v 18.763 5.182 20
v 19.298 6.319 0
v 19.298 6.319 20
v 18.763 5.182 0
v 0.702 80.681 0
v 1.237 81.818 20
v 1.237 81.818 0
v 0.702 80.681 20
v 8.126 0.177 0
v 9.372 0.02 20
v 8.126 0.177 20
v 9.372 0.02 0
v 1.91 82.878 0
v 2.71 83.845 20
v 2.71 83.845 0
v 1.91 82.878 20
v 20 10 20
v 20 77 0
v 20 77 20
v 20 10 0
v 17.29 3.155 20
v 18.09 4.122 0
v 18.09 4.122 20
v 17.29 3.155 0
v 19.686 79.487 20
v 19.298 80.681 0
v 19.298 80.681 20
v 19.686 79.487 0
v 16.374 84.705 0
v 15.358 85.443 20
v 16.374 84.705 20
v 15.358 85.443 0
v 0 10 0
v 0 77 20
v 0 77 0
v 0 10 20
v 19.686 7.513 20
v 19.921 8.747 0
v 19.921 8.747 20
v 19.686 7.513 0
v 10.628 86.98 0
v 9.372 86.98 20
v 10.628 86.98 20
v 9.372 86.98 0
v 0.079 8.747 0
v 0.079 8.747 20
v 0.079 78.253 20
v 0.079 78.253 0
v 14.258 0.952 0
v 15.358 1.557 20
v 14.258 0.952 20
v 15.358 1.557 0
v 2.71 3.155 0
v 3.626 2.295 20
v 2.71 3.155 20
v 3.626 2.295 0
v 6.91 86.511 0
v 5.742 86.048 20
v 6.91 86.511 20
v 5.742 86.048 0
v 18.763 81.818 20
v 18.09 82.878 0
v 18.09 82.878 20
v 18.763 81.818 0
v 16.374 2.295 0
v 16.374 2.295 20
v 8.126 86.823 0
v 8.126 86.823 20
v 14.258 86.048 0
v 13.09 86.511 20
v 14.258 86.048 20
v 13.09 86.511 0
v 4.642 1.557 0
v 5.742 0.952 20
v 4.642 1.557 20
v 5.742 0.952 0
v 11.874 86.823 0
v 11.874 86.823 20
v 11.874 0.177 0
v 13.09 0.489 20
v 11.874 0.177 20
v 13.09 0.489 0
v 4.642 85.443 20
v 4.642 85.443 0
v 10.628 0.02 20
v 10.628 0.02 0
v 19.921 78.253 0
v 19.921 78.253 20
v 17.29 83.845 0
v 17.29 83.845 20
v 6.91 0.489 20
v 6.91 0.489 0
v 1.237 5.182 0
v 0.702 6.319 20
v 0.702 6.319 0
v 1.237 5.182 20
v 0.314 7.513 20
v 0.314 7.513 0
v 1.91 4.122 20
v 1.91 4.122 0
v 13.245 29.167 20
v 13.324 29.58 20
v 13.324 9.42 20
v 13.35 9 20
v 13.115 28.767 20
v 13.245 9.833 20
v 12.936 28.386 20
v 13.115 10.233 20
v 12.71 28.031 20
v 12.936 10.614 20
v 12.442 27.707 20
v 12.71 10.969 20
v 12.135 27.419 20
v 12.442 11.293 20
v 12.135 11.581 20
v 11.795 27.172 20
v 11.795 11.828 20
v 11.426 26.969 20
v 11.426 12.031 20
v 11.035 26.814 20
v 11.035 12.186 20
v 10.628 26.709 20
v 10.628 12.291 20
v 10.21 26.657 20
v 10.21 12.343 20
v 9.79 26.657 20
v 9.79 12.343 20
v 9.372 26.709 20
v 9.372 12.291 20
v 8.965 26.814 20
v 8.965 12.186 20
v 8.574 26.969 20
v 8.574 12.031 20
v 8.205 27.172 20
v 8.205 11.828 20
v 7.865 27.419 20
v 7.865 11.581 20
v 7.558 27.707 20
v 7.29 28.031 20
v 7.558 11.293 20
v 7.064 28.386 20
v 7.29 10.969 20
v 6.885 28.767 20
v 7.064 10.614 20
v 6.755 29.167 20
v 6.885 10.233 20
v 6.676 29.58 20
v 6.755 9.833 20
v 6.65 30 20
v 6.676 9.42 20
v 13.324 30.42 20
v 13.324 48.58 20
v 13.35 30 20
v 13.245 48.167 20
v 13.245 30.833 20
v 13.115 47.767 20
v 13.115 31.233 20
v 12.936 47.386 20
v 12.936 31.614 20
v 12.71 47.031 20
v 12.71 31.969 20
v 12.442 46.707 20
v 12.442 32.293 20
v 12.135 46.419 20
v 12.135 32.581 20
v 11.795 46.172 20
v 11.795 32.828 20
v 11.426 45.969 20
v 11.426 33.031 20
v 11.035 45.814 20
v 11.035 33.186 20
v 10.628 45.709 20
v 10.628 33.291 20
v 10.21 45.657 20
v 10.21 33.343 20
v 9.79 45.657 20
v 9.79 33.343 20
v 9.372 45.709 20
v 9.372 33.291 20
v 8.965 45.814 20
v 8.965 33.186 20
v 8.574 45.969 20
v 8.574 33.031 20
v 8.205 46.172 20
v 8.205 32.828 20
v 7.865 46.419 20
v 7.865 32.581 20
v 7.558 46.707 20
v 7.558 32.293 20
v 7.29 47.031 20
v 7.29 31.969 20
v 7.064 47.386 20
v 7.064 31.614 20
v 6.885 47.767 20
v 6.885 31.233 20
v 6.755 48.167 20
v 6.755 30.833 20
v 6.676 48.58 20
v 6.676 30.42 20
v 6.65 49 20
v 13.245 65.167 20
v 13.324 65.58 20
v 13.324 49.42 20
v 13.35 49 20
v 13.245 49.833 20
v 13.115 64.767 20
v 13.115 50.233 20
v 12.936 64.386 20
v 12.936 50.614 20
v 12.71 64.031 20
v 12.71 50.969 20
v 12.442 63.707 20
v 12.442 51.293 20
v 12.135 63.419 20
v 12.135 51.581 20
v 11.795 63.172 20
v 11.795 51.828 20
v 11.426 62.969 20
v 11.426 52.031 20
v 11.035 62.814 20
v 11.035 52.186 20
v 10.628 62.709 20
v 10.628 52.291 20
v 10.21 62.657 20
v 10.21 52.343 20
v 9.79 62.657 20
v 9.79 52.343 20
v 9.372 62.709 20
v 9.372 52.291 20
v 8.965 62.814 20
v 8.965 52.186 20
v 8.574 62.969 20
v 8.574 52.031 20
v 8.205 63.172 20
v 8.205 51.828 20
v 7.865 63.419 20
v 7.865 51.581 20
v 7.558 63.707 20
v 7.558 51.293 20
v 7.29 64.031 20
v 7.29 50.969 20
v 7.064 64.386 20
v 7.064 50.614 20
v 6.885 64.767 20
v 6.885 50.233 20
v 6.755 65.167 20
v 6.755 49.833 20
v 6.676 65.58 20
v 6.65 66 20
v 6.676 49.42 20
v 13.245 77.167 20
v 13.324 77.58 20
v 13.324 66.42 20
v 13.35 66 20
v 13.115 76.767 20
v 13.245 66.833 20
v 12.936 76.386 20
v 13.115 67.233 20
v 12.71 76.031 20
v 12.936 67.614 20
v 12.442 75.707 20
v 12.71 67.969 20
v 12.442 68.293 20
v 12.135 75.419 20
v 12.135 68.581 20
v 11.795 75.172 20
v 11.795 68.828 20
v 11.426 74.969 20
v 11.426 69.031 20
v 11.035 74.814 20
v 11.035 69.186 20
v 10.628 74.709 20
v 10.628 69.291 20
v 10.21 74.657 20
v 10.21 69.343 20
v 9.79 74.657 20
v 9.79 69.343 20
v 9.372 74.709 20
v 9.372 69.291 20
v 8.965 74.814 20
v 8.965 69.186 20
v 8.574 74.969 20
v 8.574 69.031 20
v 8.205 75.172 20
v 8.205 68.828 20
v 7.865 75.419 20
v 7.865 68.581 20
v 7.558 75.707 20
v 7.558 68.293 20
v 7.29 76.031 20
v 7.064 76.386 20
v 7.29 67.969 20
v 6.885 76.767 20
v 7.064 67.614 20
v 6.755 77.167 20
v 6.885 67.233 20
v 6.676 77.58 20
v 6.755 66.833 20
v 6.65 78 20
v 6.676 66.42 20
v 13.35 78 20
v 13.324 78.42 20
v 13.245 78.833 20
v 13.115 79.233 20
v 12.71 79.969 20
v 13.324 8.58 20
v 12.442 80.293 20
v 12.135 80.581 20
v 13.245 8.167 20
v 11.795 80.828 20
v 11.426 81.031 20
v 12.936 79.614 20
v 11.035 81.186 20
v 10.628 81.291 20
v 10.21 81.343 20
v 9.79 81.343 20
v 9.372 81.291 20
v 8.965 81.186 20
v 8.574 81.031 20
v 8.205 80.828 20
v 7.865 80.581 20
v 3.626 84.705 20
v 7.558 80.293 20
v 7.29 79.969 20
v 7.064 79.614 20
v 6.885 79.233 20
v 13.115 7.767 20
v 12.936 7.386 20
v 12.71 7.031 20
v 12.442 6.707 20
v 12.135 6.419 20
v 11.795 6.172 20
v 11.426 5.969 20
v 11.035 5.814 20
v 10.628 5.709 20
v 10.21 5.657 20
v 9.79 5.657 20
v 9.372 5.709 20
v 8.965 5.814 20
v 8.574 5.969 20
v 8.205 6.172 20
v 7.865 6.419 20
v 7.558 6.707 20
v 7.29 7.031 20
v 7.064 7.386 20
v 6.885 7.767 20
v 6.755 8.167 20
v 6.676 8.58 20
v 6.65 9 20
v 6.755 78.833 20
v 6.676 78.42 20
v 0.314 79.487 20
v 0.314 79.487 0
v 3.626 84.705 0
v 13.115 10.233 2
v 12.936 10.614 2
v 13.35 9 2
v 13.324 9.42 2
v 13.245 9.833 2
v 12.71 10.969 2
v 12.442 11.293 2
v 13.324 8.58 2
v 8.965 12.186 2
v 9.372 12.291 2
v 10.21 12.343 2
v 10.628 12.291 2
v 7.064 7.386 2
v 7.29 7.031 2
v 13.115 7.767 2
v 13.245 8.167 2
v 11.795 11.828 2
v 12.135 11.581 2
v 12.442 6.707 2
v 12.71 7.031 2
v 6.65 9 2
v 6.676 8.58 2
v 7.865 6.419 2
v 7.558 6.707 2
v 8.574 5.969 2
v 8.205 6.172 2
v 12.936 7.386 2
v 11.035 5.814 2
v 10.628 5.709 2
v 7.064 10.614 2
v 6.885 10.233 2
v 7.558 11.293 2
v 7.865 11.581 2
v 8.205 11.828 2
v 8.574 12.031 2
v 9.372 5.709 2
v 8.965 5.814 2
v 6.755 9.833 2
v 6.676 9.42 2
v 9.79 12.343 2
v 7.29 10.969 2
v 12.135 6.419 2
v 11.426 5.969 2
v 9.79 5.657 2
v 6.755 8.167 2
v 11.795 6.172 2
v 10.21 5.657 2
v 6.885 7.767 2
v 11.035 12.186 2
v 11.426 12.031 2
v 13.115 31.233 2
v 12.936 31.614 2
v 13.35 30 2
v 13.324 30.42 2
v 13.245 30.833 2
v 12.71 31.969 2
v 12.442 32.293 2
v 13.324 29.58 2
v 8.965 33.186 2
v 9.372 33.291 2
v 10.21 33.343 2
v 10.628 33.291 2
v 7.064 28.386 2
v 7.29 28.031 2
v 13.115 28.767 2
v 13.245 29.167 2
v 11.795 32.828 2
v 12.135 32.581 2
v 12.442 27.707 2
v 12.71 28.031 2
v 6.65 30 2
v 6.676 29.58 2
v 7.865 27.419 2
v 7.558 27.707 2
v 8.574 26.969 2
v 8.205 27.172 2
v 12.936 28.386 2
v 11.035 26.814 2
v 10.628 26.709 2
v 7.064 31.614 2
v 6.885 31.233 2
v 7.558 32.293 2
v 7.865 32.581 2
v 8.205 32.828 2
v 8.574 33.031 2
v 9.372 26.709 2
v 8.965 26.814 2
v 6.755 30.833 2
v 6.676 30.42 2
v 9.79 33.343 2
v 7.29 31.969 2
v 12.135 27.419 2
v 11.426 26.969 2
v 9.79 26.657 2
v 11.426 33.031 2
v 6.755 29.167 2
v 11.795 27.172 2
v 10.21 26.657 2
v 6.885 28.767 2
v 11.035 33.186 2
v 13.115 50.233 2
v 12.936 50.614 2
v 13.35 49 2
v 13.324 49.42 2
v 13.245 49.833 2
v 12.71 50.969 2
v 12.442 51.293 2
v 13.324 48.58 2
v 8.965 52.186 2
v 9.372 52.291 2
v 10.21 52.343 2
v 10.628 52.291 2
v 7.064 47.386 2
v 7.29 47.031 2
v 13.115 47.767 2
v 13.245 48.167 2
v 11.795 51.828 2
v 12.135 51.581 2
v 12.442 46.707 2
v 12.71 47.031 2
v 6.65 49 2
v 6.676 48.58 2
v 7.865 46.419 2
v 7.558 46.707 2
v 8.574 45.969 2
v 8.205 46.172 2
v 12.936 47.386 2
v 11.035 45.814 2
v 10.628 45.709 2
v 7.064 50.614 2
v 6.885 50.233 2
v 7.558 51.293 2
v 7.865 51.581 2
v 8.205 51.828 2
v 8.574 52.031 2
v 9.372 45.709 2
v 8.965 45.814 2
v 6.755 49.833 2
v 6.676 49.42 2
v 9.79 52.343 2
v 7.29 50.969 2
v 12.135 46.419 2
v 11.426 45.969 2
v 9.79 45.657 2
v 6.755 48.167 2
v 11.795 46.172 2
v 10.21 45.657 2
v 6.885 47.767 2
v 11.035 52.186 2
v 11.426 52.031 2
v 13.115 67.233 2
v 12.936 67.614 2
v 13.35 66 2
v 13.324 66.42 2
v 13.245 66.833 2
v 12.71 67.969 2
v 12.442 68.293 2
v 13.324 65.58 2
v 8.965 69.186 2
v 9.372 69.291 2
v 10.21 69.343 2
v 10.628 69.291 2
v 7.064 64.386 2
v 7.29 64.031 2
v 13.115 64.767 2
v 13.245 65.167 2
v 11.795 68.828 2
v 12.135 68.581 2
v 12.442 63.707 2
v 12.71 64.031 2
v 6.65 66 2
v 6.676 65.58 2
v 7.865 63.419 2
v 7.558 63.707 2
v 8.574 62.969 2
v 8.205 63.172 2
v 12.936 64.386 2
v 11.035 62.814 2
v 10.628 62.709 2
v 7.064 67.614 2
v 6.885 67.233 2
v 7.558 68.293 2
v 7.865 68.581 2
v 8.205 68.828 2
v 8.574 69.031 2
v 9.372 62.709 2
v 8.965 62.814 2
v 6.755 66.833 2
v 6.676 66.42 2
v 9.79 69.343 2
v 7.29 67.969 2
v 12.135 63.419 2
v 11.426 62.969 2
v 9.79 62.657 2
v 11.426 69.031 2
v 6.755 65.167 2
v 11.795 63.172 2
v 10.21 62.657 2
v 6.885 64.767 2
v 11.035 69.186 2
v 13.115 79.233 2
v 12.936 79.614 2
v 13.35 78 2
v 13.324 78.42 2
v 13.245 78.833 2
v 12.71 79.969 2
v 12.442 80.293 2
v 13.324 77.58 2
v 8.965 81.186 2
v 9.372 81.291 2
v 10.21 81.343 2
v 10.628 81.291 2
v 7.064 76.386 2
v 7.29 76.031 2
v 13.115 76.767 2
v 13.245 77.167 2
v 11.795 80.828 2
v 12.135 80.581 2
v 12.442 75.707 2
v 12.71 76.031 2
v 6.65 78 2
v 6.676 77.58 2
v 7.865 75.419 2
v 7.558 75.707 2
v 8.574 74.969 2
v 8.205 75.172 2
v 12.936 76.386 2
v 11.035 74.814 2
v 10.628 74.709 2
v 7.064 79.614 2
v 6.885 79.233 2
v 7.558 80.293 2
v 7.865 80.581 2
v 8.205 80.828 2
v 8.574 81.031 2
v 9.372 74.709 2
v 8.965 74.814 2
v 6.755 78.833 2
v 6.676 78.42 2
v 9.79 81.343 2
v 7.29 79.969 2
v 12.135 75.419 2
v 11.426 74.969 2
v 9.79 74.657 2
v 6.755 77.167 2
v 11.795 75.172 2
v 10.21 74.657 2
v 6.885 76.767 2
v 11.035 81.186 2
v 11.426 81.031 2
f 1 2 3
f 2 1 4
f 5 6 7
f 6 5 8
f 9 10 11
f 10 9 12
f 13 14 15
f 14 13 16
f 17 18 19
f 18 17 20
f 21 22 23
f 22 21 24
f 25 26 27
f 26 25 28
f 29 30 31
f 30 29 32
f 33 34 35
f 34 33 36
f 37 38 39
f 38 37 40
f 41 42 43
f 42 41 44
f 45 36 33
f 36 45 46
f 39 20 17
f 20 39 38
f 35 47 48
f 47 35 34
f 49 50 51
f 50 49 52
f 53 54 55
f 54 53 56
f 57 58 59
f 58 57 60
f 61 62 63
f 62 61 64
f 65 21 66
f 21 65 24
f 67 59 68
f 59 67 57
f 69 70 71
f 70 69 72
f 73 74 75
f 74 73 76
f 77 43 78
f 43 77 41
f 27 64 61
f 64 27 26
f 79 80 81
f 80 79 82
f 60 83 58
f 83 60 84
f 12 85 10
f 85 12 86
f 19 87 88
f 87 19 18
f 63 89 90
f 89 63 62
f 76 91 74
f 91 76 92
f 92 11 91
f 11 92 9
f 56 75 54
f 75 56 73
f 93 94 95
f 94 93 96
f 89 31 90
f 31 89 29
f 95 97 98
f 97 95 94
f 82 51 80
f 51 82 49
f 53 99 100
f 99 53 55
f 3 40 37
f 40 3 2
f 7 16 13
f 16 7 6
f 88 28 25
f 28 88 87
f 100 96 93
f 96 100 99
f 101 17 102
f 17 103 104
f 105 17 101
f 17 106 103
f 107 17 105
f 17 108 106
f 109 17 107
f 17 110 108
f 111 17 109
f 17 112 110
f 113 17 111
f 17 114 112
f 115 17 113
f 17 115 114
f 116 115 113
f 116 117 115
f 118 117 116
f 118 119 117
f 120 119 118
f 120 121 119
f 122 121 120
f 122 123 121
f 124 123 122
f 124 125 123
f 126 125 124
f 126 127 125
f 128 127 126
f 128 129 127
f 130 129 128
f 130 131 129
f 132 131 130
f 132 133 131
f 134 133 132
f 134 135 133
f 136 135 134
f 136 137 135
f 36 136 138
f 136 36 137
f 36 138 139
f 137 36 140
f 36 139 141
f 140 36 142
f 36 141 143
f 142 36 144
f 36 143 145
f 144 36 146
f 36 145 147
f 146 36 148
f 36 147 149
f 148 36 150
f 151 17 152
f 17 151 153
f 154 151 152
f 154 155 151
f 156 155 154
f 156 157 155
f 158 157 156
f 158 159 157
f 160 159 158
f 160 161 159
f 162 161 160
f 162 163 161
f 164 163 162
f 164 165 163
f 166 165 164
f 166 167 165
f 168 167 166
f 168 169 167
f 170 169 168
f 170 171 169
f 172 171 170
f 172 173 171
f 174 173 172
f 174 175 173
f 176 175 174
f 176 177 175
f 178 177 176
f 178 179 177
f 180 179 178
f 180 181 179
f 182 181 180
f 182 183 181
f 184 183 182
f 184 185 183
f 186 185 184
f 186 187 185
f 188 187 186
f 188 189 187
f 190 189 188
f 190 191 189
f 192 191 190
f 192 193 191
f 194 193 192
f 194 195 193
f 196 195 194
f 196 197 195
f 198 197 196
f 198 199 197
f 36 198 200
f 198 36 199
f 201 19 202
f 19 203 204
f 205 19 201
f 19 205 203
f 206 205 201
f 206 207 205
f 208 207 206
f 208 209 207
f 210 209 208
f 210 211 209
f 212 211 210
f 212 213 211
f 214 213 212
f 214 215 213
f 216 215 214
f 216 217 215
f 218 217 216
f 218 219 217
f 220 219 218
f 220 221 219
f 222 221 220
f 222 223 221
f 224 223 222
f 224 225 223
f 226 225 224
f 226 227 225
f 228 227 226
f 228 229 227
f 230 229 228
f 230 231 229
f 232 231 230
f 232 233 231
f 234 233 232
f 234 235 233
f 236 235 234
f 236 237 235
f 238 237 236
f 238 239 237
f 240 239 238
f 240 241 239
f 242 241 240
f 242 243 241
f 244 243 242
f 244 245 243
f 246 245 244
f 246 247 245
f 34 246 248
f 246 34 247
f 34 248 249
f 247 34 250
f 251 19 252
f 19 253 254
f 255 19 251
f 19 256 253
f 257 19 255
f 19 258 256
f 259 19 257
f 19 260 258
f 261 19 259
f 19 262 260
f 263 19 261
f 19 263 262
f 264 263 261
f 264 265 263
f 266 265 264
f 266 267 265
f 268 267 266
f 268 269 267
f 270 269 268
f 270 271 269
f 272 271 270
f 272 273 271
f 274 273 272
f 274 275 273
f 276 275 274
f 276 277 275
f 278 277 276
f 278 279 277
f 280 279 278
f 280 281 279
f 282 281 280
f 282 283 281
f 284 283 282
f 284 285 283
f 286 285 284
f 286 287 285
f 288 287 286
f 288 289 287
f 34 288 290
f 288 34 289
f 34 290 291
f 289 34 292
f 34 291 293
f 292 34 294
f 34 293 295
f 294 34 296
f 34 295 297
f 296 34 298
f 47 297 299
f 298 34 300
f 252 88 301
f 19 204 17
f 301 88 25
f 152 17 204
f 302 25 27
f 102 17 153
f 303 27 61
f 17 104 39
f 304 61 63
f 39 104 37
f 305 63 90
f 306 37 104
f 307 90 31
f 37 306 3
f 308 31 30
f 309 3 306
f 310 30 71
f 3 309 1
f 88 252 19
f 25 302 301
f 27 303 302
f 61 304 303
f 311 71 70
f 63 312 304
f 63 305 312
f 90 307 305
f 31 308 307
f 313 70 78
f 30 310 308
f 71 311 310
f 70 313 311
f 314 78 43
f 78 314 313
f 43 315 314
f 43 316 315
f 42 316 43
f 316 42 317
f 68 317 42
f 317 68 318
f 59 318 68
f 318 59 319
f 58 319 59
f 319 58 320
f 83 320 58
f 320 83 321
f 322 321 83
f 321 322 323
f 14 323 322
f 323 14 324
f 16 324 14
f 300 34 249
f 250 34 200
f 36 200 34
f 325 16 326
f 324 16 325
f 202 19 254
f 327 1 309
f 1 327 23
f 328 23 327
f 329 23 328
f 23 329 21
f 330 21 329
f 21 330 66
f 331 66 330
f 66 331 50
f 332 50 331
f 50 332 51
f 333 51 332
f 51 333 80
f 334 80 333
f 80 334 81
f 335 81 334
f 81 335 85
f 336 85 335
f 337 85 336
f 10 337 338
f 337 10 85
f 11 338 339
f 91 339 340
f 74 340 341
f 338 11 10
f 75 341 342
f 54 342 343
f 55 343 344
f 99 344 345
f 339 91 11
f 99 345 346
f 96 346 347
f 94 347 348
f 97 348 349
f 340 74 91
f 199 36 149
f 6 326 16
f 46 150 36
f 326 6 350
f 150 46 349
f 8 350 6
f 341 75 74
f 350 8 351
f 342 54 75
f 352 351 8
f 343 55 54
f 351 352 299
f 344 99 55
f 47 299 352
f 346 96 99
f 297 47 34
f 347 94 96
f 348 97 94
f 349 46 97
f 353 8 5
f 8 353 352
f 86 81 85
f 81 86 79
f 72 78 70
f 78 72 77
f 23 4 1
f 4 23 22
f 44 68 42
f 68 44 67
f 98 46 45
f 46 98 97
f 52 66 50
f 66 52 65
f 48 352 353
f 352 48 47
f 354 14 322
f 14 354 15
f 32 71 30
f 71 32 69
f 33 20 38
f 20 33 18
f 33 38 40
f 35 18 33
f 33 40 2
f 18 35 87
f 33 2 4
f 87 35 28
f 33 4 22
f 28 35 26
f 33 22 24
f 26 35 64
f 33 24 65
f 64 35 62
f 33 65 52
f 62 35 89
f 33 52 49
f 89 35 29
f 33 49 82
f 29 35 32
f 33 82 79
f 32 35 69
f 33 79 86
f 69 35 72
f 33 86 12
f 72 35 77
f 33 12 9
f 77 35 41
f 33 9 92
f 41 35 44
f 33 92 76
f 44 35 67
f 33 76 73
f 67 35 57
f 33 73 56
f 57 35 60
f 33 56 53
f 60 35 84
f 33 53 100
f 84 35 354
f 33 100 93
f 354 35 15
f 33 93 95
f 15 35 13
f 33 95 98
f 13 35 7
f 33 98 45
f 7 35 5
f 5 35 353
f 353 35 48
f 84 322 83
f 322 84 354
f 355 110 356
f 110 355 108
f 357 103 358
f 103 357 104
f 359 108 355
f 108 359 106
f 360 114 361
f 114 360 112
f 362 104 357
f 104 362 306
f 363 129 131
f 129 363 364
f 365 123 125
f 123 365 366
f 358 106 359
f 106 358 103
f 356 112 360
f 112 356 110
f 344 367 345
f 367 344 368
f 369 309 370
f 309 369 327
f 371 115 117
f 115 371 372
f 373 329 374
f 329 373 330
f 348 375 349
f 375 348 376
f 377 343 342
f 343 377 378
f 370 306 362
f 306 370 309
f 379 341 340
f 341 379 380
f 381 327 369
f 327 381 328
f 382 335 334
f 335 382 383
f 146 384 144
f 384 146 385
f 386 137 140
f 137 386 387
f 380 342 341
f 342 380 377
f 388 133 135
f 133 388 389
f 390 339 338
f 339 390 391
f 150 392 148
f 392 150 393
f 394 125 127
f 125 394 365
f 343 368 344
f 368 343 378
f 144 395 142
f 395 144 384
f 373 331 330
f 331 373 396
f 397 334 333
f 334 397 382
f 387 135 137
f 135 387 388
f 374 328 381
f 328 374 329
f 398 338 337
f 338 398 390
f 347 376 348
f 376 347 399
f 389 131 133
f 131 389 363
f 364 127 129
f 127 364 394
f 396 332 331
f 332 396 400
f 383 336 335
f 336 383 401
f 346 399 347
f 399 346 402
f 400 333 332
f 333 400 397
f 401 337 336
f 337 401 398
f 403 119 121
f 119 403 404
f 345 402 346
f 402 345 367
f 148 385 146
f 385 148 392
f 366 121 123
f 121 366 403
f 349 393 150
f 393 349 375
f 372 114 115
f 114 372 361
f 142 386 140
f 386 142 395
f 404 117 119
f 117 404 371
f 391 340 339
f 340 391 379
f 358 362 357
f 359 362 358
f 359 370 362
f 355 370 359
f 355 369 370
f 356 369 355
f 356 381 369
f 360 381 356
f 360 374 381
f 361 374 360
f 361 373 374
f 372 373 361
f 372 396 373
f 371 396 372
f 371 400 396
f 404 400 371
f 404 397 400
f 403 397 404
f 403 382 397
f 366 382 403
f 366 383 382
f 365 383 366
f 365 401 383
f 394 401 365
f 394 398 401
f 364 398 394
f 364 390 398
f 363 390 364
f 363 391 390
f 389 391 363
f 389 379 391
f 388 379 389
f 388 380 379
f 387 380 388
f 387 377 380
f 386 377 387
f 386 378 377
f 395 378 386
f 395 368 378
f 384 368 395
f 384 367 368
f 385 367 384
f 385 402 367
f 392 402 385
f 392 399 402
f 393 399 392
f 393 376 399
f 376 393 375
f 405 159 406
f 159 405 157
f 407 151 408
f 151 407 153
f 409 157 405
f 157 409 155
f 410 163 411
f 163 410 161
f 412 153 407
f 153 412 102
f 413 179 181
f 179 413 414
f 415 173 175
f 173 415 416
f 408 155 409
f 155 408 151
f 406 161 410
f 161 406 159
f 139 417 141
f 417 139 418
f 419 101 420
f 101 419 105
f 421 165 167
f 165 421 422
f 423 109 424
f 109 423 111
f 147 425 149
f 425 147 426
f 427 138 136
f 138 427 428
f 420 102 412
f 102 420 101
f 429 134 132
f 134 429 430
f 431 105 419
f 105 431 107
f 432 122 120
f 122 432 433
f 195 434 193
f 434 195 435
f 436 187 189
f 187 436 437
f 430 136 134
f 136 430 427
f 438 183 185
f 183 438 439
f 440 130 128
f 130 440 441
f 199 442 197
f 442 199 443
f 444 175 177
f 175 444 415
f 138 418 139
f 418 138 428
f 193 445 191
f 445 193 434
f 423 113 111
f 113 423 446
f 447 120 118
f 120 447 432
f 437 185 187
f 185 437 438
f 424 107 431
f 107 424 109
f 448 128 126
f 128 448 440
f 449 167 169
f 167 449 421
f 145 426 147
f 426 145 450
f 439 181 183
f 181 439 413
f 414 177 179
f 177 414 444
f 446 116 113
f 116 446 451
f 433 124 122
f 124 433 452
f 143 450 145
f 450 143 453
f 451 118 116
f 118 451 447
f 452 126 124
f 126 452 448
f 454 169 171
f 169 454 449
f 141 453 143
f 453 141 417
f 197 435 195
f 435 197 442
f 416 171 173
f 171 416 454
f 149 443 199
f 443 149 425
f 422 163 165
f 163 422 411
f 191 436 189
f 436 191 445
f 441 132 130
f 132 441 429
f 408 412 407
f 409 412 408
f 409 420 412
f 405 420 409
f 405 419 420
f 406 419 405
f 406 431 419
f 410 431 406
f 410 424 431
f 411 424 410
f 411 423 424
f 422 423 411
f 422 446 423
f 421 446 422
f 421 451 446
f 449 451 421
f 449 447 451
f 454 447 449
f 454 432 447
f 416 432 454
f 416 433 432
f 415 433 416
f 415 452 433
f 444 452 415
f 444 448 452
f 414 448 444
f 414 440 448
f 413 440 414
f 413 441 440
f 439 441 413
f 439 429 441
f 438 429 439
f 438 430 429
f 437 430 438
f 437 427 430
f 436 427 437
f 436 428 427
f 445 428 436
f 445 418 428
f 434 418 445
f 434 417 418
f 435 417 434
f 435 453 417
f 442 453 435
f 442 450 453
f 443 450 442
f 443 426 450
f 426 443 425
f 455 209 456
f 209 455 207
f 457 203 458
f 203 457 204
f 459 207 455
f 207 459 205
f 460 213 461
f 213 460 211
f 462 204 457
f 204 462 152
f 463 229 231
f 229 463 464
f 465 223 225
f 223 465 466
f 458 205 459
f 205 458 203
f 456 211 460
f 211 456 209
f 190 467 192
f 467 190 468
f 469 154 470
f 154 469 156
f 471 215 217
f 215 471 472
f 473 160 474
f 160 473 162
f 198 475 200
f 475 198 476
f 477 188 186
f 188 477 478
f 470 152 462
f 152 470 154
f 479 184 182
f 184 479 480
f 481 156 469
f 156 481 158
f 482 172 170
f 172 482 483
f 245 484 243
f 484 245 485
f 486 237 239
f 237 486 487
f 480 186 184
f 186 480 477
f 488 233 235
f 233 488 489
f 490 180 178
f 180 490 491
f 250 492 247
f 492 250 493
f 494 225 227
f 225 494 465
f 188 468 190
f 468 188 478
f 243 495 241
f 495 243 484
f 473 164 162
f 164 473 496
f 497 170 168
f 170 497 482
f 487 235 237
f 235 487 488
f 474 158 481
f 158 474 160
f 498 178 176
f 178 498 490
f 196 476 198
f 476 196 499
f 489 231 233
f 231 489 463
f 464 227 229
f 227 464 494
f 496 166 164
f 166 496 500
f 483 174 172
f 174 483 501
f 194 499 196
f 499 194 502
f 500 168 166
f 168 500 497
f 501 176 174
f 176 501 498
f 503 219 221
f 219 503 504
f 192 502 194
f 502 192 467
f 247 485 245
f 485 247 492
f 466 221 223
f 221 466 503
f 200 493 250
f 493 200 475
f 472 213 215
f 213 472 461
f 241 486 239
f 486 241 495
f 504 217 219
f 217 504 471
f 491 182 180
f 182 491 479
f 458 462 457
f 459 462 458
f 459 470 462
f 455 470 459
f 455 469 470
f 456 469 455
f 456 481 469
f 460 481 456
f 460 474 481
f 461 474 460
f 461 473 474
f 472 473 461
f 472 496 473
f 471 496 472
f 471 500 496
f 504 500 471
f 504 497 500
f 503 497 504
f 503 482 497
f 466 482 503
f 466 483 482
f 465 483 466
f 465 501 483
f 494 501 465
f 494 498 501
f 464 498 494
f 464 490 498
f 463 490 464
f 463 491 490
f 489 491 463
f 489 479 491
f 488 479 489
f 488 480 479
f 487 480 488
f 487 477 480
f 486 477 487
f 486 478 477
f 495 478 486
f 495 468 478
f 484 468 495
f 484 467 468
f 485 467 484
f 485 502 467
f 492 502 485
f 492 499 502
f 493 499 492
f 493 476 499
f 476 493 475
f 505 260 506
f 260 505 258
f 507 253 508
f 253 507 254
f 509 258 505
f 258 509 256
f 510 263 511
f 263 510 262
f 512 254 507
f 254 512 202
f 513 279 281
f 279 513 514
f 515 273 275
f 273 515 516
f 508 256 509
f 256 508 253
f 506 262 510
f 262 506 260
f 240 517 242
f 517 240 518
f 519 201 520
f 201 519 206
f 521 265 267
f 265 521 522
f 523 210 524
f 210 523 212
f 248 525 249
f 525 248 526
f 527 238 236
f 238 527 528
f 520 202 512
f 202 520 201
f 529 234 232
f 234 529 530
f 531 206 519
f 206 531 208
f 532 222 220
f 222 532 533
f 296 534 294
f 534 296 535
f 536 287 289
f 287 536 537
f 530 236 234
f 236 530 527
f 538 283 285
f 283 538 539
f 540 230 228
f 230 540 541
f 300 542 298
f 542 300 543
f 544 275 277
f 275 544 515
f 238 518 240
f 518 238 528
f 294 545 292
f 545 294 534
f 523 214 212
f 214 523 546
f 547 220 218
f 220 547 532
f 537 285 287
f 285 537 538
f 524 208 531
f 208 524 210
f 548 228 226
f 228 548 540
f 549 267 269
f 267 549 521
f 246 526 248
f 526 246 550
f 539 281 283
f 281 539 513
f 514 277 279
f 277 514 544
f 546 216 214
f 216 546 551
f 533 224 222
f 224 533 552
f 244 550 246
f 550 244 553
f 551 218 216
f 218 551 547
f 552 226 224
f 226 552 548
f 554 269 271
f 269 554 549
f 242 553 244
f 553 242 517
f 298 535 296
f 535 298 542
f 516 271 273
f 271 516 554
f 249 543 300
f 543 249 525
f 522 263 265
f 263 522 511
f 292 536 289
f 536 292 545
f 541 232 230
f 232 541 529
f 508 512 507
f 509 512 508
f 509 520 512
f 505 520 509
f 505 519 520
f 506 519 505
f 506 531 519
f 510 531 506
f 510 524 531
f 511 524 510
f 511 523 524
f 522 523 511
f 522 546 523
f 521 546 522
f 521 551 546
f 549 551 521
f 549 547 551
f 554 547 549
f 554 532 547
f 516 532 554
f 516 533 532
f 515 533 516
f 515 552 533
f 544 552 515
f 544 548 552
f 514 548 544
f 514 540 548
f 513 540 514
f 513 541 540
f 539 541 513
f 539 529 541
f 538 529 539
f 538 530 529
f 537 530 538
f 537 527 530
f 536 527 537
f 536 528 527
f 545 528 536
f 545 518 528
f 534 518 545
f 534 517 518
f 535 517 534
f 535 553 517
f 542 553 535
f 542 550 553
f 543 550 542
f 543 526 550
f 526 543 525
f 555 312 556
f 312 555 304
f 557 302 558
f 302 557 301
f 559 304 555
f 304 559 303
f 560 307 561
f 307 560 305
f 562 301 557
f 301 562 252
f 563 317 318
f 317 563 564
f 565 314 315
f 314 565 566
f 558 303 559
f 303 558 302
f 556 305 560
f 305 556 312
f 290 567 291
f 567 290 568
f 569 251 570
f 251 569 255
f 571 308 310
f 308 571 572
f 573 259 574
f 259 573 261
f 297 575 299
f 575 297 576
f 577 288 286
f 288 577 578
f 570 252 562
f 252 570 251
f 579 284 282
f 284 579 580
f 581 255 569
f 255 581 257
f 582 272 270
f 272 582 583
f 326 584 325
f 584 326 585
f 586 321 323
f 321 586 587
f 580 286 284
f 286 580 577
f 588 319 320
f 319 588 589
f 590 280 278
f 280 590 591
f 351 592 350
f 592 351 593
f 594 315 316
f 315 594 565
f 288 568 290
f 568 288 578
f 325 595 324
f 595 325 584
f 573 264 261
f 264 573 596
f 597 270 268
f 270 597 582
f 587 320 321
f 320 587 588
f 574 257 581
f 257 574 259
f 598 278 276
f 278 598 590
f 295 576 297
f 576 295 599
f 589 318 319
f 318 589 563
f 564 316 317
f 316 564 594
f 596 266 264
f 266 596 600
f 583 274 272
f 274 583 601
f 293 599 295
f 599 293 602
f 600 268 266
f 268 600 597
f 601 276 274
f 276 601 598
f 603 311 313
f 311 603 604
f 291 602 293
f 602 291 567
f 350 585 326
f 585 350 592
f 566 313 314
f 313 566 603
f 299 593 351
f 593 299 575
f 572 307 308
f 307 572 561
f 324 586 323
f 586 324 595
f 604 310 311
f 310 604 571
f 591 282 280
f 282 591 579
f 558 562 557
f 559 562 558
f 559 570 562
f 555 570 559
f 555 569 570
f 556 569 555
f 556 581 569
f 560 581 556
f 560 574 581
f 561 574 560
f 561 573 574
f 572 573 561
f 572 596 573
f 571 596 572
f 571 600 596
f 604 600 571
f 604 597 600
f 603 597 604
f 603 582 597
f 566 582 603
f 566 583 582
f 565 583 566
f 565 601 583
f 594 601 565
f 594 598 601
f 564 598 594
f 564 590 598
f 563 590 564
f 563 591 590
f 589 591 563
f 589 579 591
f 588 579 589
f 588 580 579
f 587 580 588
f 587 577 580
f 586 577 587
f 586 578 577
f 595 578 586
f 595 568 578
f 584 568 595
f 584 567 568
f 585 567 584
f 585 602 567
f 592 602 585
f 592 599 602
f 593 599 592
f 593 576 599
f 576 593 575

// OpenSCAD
mlength = 9+21+19+17+12+9;
mwidth = 20;
mheight = 20;
mradius = 6.7/2.0;

$fn = 50;


difference() {
    //cube([mwidth, mlength, mheight], center = false);
    linear_extrude(mheight, center = false){
        union(){
            translate([mwidth/2.0, mwidth/2.0, 0]){
                circle(mwidth/2.0);
            }
            translate([mwidth/2.0, mlength - mwidth/2.0, 0]){
                circle(mwidth/2.0);
            }
            translate([0, mwidth/2.0, 0]){
                square([mwidth, mlength - mwidth], center = false);
            }
        }
    }
    translate([mwidth/2.0, 9, 2]) cylinder(mheight, r = mradius, center = false);
    translate([mwidth/2.0, 9+21, 2]) cylinder(mheight, r = mradius, center = false);
    translate([mwidth/2.0, 9+21+19, 2]) cylinder(mheight, r = mradius, center = false);
    translate([mwidth/2.0, 9+21+19+17, 2]) cylinder(mheight, r = mradius, center = false);
    translate([mwidth/2.0, 9+21+19+17+12, 2]) cylinder(mheight, r = mradius, center = false);
}
